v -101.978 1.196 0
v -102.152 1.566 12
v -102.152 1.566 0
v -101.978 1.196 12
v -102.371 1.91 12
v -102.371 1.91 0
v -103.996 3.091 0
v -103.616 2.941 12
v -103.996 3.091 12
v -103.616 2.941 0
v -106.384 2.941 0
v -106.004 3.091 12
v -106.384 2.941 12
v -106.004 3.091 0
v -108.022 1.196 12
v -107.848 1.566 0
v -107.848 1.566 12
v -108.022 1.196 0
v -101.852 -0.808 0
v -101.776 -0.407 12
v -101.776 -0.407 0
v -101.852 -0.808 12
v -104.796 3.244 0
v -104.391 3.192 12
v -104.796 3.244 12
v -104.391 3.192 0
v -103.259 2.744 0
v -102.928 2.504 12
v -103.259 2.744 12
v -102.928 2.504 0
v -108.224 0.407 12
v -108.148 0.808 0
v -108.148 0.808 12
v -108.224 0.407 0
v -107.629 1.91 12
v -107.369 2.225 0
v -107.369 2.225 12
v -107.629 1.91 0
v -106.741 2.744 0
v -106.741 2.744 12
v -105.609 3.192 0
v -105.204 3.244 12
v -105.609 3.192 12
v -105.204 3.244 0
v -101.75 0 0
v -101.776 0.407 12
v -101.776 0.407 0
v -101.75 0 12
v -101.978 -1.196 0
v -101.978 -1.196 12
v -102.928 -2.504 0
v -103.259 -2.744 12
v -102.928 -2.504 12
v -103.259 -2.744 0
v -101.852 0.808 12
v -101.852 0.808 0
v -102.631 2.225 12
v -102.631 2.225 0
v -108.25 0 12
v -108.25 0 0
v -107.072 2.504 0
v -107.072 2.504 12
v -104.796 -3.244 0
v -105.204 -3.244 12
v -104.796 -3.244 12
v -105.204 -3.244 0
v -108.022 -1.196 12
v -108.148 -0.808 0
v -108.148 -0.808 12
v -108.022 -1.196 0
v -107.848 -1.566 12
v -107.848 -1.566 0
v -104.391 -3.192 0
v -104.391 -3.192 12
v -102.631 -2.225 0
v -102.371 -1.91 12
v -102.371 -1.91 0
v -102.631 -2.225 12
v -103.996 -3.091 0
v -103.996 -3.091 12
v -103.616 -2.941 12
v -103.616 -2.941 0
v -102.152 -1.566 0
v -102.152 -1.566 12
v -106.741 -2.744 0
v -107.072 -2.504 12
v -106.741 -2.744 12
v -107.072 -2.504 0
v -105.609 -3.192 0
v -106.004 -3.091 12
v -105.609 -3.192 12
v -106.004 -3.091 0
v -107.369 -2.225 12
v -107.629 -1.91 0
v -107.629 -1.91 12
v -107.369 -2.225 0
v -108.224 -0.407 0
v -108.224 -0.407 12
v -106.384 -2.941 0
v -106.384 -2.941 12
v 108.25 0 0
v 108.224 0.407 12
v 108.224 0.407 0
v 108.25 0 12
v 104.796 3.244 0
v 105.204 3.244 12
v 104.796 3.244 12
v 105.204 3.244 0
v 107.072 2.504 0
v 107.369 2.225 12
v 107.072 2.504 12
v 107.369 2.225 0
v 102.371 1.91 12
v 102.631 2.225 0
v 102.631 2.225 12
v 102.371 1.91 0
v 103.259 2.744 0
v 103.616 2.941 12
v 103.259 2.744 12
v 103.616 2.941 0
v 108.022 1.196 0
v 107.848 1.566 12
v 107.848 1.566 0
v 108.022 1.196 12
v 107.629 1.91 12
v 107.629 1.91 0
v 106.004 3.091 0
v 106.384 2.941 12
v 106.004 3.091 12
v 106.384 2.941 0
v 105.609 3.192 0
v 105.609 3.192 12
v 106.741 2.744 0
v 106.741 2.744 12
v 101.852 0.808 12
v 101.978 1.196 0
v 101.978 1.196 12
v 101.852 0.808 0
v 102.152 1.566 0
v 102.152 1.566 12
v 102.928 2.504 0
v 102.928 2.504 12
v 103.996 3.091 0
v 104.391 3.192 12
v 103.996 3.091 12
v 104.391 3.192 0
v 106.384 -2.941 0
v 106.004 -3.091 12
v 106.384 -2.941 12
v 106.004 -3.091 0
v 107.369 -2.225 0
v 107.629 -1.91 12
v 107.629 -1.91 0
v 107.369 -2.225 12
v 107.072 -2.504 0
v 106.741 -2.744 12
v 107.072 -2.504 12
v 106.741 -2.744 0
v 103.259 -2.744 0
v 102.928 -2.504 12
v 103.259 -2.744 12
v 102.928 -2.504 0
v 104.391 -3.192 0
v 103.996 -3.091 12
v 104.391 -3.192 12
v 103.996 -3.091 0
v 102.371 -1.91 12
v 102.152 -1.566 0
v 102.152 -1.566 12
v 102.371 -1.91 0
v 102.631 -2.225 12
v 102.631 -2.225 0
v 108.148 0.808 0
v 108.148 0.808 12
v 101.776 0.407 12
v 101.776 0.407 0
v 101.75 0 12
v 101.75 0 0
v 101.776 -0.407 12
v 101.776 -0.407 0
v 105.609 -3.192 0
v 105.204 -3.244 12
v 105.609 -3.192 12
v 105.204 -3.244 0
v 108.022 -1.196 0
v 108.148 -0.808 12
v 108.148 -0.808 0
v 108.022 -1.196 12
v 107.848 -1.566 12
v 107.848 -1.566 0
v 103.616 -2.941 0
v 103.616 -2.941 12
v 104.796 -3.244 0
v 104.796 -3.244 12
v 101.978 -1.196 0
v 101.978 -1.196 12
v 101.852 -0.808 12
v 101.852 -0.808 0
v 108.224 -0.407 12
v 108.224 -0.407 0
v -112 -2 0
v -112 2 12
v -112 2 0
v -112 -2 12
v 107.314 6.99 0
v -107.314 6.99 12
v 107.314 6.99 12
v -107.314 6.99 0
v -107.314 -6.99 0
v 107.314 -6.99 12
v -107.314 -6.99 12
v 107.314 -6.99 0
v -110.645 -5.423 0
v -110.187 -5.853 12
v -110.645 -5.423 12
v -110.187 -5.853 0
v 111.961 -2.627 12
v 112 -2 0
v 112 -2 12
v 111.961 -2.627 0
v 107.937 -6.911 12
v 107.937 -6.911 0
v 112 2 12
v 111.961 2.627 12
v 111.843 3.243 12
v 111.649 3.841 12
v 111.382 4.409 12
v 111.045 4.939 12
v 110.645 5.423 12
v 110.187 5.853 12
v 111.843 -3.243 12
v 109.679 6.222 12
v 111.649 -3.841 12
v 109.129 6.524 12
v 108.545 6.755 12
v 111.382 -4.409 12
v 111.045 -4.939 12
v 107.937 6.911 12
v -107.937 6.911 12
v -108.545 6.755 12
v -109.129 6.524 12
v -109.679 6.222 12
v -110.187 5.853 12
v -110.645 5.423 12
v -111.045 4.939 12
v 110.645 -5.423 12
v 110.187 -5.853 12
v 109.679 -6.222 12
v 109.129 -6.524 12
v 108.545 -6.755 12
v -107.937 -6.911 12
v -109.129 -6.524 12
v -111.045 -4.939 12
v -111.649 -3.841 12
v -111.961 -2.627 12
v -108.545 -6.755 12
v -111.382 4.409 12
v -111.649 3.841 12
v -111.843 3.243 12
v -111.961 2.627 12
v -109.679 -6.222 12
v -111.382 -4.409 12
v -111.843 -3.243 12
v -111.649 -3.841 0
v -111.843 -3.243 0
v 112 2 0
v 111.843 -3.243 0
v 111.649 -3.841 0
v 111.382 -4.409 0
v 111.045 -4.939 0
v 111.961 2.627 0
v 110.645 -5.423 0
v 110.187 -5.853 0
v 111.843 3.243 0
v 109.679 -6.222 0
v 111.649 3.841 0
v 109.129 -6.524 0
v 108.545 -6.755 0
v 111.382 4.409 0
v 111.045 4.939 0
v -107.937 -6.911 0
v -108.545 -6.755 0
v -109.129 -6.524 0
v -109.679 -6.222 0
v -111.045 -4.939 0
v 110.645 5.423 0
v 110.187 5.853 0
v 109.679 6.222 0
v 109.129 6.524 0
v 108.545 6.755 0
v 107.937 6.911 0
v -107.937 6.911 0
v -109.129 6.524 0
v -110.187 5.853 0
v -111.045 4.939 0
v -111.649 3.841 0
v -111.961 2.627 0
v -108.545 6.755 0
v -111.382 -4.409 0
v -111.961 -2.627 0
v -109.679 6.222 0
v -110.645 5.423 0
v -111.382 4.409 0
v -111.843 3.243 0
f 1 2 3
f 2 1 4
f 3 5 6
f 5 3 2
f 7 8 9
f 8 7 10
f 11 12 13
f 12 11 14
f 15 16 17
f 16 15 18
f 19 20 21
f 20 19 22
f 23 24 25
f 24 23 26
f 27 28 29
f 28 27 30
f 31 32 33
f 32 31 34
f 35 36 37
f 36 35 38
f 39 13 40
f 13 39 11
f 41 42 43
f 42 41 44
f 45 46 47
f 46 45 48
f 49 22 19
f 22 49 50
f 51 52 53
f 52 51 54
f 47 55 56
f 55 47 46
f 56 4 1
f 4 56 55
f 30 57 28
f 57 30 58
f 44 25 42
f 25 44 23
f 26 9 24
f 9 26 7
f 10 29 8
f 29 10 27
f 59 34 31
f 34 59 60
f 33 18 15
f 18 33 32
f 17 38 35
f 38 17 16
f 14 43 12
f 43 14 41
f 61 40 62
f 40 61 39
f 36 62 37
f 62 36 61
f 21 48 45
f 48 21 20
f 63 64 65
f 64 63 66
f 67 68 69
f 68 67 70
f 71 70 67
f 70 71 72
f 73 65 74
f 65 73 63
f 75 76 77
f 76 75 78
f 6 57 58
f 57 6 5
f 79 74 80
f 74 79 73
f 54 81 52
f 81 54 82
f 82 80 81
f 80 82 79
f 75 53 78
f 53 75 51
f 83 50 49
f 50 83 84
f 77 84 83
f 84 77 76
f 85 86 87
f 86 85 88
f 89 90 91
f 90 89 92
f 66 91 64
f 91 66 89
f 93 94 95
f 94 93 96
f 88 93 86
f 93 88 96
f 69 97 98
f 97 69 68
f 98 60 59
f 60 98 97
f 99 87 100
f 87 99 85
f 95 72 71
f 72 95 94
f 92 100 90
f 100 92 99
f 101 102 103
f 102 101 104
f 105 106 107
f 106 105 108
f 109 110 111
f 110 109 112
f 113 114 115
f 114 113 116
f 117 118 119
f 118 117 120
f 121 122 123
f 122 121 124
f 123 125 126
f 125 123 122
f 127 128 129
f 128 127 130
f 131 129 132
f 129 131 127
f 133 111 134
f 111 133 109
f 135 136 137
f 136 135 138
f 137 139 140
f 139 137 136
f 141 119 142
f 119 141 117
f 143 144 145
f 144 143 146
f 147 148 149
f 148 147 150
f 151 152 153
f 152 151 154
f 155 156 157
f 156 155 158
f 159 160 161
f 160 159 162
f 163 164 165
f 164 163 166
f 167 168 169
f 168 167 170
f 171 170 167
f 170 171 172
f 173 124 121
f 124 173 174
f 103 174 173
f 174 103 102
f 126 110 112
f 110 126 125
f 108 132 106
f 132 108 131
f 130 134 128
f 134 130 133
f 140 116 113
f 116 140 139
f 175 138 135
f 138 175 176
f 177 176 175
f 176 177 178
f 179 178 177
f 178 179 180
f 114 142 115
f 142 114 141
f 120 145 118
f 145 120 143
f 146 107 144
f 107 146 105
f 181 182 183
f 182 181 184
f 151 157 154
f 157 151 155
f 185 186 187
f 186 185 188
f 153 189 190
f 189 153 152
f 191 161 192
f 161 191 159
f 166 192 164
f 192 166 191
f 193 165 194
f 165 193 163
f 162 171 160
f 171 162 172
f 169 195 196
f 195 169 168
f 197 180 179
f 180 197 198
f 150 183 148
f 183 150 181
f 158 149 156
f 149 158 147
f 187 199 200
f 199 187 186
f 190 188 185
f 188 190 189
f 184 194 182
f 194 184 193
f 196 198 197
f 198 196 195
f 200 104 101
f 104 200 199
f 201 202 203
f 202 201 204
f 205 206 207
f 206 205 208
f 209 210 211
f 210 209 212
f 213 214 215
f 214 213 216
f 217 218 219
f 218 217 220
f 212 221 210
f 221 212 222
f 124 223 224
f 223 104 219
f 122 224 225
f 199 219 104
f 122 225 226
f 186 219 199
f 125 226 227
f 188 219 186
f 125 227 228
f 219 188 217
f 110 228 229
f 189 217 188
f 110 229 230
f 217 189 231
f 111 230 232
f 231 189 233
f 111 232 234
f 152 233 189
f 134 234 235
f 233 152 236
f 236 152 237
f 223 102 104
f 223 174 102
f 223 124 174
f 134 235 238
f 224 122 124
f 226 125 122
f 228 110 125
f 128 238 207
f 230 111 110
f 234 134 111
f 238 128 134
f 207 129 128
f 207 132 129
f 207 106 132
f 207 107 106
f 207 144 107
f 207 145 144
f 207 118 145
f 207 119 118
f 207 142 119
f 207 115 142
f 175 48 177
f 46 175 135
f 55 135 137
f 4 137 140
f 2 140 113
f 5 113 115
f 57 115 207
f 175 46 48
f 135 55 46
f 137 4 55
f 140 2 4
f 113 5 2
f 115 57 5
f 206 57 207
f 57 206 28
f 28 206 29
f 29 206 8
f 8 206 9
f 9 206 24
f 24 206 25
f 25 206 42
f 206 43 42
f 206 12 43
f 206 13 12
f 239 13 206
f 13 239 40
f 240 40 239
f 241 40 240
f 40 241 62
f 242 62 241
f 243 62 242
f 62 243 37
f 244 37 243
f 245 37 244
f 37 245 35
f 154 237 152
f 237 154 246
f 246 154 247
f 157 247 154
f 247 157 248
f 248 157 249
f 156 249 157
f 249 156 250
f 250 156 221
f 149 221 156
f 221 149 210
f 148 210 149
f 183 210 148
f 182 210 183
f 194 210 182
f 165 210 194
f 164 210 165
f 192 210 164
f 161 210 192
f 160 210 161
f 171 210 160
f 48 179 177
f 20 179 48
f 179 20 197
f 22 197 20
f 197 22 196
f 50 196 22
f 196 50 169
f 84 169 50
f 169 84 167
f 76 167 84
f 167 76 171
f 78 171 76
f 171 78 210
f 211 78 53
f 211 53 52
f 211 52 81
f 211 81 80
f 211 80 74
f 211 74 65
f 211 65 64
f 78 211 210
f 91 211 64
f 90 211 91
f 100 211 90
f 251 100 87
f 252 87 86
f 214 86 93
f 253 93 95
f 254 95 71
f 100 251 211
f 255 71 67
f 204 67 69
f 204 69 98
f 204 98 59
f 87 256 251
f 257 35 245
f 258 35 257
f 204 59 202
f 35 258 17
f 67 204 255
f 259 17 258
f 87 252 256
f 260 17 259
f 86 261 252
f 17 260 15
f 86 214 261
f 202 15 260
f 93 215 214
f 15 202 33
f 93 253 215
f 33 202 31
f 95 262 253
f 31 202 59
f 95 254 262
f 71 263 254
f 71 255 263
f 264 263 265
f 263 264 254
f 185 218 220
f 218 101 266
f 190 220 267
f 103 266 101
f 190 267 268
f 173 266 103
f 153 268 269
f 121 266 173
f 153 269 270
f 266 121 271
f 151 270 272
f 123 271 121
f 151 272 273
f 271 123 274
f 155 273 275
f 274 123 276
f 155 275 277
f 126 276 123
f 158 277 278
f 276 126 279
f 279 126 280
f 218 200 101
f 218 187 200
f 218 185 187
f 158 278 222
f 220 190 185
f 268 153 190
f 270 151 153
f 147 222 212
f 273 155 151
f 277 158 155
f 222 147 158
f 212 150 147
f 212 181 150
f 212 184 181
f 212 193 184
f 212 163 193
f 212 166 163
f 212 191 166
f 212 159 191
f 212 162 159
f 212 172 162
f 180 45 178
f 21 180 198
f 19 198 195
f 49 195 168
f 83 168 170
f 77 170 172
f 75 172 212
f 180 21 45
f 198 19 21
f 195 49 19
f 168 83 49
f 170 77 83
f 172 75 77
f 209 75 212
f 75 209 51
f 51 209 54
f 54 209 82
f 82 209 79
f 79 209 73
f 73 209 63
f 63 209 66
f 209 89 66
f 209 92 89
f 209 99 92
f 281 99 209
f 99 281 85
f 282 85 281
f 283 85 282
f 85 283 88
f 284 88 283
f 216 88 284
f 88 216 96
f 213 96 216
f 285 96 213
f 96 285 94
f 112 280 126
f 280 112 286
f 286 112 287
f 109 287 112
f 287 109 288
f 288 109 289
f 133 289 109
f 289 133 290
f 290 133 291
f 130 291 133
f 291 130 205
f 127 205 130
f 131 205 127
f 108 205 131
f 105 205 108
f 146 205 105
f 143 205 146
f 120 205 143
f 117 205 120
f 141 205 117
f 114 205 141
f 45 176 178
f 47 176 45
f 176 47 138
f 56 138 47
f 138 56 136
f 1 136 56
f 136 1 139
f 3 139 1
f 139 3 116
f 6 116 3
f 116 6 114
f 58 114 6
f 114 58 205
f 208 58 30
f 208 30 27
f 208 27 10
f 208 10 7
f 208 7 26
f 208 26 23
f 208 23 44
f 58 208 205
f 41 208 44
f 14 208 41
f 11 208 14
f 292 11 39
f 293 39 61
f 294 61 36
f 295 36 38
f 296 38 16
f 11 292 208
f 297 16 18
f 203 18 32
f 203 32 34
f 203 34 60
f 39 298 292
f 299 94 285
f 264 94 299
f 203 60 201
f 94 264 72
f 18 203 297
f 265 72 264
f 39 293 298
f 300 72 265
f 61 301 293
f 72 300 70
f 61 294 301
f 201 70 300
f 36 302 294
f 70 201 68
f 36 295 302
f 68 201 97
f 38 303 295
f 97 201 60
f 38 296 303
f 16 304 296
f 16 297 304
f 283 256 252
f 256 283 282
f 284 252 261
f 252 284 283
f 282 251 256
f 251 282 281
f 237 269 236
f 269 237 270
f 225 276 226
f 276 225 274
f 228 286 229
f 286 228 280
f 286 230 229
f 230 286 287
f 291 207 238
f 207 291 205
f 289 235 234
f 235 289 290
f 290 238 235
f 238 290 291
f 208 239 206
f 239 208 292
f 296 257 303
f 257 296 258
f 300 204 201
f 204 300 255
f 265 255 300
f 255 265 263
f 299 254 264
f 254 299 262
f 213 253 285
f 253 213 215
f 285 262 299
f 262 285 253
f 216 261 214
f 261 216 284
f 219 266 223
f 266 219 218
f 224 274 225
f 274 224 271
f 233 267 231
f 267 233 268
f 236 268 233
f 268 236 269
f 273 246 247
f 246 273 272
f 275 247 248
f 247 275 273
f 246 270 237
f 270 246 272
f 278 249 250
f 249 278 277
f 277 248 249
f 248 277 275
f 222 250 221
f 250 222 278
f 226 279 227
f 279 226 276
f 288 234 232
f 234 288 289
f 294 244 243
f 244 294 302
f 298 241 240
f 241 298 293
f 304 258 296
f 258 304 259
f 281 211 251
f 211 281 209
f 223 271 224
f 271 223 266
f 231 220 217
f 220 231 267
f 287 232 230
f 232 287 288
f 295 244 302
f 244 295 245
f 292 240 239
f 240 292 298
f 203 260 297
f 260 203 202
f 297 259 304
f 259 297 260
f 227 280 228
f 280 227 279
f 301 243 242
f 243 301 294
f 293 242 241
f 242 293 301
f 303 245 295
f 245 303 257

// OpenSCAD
$fn = 50;


difference() {
	union() {
		hull() {
			translate(v = [-107.0000000000, 2.0000000000, 0]) {
				cylinder(h = 12, r = 5);
			}
			translate(v = [107.0000000000, 2.0000000000, 0]) {
				cylinder(h = 12, r = 5);
			}
			translate(v = [-107.0000000000, -2.0000000000, 0]) {
				cylinder(h = 12, r = 5);
			}
			translate(v = [107.0000000000, -2.0000000000, 0]) {
				cylinder(h = 12, r = 5);
			}
		}
	}
	union() {
		translate(v = [-105.0000000000, 0.0000000000, -100.0000000000]) {
			cylinder(h = 200, r = 3.2500000000);
		}
		translate(v = [-105.0000000000, 0.0000000000, -100.0000000000]) {
			cylinder(h = 200, r = 3.2500000000);
		}
		translate(v = [105.0000000000, 0.0000000000, -100.0000000000]) {
			cylinder(h = 200, r = 3.2500000000);
		}
		translate(v = [105.0000000000, 0.0000000000, -100.0000000000]) {
			cylinder(h = 200, r = 3.2500000000);
		}
	}
}
